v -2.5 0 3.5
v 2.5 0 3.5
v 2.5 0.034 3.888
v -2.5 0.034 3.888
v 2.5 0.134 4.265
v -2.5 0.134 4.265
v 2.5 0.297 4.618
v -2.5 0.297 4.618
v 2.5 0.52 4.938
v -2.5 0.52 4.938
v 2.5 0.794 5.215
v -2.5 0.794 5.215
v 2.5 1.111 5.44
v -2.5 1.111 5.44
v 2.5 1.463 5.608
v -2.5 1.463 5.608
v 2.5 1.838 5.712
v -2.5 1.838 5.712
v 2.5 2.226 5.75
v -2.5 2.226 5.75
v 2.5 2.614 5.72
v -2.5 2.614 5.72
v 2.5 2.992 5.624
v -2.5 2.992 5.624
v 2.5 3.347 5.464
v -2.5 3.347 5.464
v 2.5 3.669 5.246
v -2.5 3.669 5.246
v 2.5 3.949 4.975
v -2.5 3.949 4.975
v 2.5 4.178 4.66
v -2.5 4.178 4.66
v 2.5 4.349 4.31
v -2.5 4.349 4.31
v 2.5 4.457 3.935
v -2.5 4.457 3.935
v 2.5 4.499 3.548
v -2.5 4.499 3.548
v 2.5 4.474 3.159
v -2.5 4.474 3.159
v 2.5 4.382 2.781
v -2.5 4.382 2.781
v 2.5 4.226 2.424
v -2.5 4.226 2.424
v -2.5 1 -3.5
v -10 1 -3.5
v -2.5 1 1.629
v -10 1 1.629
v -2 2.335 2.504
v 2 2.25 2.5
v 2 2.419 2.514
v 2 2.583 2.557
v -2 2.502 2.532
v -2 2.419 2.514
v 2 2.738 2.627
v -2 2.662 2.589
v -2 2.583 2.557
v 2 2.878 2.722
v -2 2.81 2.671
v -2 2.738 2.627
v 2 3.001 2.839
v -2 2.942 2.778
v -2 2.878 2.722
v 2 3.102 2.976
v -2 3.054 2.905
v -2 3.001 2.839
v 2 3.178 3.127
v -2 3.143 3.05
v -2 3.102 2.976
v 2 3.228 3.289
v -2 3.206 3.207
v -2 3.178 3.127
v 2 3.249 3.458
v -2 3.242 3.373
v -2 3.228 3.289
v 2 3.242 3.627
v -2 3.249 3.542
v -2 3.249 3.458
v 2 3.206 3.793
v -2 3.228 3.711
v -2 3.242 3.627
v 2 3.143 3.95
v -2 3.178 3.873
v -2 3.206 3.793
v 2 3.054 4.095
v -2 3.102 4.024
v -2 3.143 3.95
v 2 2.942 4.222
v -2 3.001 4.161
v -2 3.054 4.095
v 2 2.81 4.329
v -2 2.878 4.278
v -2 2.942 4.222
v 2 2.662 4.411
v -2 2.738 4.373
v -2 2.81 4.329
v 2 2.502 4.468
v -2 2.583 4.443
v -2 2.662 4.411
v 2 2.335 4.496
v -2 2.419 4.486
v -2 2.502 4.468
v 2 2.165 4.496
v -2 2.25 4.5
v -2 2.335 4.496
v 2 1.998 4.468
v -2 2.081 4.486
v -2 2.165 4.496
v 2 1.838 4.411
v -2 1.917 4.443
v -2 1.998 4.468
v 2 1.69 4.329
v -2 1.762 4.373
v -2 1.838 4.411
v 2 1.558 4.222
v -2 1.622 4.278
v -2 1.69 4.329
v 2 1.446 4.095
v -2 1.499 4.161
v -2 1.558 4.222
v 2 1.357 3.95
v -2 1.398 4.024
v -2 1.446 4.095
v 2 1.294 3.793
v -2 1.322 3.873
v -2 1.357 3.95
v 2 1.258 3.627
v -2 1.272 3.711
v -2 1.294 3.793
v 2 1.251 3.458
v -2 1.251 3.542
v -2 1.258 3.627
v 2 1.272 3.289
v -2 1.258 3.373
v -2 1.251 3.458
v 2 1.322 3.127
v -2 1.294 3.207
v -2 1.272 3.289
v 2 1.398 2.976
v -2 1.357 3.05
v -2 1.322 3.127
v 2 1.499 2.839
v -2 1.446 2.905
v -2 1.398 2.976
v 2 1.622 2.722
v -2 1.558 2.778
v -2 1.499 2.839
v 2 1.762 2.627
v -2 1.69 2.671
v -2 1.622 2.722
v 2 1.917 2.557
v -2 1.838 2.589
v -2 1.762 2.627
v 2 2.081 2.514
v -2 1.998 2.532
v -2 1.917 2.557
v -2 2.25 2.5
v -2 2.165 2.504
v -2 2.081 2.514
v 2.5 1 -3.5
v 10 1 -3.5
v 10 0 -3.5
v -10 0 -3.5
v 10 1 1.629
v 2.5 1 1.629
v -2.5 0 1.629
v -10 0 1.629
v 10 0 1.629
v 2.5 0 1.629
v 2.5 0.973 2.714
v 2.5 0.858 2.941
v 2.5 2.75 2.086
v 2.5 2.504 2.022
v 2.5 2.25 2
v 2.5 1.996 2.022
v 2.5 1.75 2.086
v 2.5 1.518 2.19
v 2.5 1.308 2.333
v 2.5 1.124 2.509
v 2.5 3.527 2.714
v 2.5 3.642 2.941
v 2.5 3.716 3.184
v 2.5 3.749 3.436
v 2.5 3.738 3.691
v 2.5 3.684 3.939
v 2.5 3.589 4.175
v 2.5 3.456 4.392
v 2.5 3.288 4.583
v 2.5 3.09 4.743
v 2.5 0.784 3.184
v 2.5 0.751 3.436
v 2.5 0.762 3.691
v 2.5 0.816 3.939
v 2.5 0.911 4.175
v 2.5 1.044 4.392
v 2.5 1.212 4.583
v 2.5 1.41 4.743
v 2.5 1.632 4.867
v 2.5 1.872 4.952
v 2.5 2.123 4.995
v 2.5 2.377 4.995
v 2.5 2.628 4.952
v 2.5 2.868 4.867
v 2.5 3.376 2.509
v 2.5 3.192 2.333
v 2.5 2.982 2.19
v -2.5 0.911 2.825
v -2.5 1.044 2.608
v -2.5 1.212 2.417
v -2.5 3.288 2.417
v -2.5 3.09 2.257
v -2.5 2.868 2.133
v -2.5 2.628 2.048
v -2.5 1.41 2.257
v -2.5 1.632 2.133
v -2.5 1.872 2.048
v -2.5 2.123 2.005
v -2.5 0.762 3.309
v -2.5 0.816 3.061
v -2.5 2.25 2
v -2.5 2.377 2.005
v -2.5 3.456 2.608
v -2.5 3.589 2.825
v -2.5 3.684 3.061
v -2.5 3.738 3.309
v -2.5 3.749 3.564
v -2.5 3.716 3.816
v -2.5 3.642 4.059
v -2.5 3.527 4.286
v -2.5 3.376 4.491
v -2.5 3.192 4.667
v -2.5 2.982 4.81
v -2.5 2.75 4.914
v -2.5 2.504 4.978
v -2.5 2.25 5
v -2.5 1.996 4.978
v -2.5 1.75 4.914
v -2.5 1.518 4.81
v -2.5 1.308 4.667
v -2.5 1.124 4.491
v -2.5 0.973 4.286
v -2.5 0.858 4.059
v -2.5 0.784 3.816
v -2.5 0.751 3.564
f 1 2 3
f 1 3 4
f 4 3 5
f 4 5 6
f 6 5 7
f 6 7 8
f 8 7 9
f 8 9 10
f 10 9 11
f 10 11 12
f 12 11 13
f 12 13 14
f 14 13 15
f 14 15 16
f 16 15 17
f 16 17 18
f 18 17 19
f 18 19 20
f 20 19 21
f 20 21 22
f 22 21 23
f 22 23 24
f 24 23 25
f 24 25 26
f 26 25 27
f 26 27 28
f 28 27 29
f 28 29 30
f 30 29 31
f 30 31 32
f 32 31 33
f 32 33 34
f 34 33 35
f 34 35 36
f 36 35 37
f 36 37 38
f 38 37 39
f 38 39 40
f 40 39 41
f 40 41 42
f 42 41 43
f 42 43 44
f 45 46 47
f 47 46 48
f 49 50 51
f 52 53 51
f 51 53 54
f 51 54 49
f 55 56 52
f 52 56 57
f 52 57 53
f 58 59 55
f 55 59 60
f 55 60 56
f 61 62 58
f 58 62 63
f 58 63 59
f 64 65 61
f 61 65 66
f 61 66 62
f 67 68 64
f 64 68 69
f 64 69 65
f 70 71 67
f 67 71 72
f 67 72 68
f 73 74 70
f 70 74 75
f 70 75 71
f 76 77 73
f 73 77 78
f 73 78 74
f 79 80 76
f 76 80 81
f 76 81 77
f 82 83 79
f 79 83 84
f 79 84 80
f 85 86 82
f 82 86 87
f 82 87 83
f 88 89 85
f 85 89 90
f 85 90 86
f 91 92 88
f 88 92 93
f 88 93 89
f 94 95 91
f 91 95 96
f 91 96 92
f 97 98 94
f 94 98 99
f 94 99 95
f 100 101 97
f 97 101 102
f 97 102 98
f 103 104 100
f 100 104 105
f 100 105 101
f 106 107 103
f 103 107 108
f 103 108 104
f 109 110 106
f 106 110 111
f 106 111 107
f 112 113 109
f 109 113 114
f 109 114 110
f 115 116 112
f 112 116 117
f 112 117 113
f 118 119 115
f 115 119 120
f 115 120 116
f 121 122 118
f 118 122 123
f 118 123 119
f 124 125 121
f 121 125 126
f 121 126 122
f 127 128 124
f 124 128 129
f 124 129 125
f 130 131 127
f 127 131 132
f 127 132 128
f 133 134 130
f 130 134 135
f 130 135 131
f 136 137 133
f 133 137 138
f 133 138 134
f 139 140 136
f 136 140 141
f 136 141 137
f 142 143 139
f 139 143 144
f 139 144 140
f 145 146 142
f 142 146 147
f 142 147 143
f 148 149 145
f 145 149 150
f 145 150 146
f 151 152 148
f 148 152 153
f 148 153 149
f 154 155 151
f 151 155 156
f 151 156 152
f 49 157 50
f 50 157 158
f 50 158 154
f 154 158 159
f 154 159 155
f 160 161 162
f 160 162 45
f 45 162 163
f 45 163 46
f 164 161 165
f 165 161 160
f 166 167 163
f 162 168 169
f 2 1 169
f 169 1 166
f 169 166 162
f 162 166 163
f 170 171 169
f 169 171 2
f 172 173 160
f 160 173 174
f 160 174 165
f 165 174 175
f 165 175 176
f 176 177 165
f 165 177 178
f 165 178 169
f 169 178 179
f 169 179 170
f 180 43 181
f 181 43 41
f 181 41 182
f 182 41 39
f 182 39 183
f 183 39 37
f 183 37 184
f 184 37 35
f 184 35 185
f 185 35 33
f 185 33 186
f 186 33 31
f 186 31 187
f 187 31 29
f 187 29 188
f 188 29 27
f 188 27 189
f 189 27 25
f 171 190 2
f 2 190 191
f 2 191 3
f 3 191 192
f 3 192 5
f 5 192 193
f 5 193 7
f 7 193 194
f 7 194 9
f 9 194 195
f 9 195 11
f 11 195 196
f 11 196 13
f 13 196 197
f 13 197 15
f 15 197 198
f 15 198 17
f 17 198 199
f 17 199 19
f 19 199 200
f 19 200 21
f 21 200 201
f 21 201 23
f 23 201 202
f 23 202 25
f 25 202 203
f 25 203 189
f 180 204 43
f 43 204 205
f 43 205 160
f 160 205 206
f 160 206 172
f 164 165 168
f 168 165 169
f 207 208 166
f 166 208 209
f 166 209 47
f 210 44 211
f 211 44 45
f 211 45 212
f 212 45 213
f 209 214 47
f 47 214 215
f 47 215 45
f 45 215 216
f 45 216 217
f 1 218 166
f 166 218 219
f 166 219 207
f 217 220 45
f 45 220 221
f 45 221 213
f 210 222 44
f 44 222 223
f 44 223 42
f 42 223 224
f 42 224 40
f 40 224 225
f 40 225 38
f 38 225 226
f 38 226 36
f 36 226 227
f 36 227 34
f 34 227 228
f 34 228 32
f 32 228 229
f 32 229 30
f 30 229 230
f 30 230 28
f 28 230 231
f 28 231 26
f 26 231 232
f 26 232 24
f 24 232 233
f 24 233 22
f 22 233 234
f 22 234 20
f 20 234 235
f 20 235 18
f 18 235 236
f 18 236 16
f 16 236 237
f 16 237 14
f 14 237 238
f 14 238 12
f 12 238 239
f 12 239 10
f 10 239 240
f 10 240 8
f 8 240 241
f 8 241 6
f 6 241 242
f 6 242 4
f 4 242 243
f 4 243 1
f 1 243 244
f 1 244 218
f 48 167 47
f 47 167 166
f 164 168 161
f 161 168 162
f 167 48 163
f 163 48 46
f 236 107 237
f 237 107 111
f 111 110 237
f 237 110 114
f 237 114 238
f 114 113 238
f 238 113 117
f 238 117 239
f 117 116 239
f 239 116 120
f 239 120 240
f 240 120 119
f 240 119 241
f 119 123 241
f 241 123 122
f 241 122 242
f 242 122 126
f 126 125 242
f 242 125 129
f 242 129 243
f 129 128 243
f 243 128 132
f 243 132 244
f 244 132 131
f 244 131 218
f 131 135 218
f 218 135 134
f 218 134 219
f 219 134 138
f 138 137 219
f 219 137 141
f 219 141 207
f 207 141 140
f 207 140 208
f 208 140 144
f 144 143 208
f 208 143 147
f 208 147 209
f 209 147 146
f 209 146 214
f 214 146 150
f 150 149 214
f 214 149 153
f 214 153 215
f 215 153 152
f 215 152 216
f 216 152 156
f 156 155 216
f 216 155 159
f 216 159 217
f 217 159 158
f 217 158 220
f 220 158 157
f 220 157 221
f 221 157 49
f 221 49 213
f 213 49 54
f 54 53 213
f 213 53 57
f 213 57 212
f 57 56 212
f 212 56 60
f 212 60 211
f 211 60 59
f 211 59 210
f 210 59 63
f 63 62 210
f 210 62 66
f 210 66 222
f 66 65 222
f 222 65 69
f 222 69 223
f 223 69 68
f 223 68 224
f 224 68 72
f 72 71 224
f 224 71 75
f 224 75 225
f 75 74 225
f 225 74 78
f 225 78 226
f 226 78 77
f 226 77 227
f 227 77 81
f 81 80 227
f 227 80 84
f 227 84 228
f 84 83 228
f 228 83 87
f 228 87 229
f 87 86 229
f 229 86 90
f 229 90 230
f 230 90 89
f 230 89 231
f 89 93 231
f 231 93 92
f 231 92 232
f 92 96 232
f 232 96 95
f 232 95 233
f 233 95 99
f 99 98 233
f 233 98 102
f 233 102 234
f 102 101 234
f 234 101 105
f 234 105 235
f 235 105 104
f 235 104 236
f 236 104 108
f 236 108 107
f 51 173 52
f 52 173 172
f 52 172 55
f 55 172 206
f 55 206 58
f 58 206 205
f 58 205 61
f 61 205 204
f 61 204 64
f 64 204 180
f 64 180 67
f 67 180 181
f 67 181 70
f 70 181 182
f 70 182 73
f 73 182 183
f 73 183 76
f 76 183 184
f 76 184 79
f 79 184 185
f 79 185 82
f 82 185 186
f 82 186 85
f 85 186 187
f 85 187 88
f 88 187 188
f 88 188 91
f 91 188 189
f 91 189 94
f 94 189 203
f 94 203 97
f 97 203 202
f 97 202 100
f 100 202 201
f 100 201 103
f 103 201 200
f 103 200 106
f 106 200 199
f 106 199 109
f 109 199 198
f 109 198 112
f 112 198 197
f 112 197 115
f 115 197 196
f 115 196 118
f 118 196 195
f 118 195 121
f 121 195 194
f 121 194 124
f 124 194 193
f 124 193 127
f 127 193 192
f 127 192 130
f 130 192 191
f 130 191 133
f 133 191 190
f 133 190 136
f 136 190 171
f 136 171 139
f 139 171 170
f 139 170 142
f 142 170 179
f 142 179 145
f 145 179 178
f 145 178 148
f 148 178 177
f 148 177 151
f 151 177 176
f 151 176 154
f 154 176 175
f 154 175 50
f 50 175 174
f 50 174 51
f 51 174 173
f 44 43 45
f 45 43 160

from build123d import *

# Parameters (mm, degrees)
SKIZZE2_W                       = 15
SKIZZE2_H                       = 7
AUFSATZ_LINEAR_AUSTRAGEN1_DEPTH = 1
SKIZZE3_R                       = 2.25
SKIZZE3_R_2                     = 1
AUFSATZ_LINEAR_AUSTRAGEN2_DEPTH = 15
SCHNITT_LINEAR_AUSTRAGEN1_DEPTH = 5
LINEARES_MUSTER1_COUNT          = 2
LINEARES_MUSTER1_PITCH          = 10
SKIZZE7_W                       = 5.129171307
SKIZZE7_H                       = 1
VERBREITERUNG_DEPTH             = 2.5
FASE1_SIZE                      = 0.5
AUFSATZ_LINEAR_AUSTRAGEN3_DEPTH = 5


with BuildPart() as part:
    # Skizze2 → Aufsatz-Linear austragen1 (new body)
    with BuildSketch(Plane(origin=(0, 0, 0), x_dir=(1, 0, 0), z_dir=(0, 1, 0))):
        Rectangle(SKIZZE2_W, SKIZZE2_H)
    extrude(amount=AUFSATZ_LINEAR_AUSTRAGEN1_DEPTH)

    # Skizze3 → Aufsatz-Linear austragen2 (add)
    with BuildSketch(Plane(origin=(7.5, 0, 0), x_dir=(0, 0, -1), z_dir=(1, 0, 0))):
        with Locations((-3.5, 2.25)):
            Circle(SKIZZE3_R)
        with Locations((-3.5, 2.25)):
            Circle(SKIZZE3_R_2, mode=Mode.SUBTRACT)
    extrude(amount=-AUFSATZ_LINEAR_AUSTRAGEN2_DEPTH)

    # Skizze5 → Schnitt-Linear austragen1 (cut)
    with BuildSketch(Plane(origin=(7.5, 0, 0), x_dir=(0, 0, -1), z_dir=(1, 0, 0))):
        with BuildLine():
            Line((-1.629171307, 1), (-1.629171307, 0))
            Line((-1.629171307, 0), (-3.5, 0))
            ThreePointArc((-3.5, 0), (-4.560660172, 4.234313483), (-1.629171307, 1))
        make_face()
    schnitt_linear_austragen1 = extrude(amount=-SCHNITT_LINEAR_AUSTRAGEN1_DEPTH, mode=Mode.SUBTRACT)

    # Lineares Muster1: Schnitt-Linear austragen1 ×2
    with Locations(*[(-i * LINEARES_MUSTER1_PITCH, 0, 0) for i in range(1, LINEARES_MUSTER1_COUNT)]):
        add(schnitt_linear_austragen1, mode=Mode.SUBTRACT)

    # Skizze7 → Verbreiterung (add)
    with BuildSketch(Plane(origin=(7.5, 0, 0), x_dir=(0, 0, -1), z_dir=(1, 0, 0))):
        with Locations((0.935414346, 0.5)):
            Rectangle(SKIZZE7_W, SKIZZE7_H)
    verbreiterung = extrude(amount=VERBREITERUNG_DEPTH)

    # Spiegeln1: Verbreiterung across plane
    add(verbreiterung.mirror(Plane(origin=(0, 0, 0), x_dir=(0, 0, 1), z_dir=(1, 0, 0))))

    # Fase1
    fase1_edges = [part.edges().sort_by_distance(p)[0] for p in [
        (2.5, 2.25, 4.5),
        (-2.5, 2.25, 4.5),
    ]]
    chamfer(fase1_edges, length=FASE1_SIZE)

    # Skizze9 → Aufsatz-Linear austragen3 (add)
    with BuildSketch(Plane(origin=(2.5, 0, 0), x_dir=(0, 0, -1), z_dir=(1, 0, 0))):
        Polygon((-1.629171307, 1), (3.5, 1), (-2.423928807, 4.225998681), align=None)
    extrude(amount=-AUFSATZ_LINEAR_AUSTRAGEN3_DEPTH)


solid = part.part
